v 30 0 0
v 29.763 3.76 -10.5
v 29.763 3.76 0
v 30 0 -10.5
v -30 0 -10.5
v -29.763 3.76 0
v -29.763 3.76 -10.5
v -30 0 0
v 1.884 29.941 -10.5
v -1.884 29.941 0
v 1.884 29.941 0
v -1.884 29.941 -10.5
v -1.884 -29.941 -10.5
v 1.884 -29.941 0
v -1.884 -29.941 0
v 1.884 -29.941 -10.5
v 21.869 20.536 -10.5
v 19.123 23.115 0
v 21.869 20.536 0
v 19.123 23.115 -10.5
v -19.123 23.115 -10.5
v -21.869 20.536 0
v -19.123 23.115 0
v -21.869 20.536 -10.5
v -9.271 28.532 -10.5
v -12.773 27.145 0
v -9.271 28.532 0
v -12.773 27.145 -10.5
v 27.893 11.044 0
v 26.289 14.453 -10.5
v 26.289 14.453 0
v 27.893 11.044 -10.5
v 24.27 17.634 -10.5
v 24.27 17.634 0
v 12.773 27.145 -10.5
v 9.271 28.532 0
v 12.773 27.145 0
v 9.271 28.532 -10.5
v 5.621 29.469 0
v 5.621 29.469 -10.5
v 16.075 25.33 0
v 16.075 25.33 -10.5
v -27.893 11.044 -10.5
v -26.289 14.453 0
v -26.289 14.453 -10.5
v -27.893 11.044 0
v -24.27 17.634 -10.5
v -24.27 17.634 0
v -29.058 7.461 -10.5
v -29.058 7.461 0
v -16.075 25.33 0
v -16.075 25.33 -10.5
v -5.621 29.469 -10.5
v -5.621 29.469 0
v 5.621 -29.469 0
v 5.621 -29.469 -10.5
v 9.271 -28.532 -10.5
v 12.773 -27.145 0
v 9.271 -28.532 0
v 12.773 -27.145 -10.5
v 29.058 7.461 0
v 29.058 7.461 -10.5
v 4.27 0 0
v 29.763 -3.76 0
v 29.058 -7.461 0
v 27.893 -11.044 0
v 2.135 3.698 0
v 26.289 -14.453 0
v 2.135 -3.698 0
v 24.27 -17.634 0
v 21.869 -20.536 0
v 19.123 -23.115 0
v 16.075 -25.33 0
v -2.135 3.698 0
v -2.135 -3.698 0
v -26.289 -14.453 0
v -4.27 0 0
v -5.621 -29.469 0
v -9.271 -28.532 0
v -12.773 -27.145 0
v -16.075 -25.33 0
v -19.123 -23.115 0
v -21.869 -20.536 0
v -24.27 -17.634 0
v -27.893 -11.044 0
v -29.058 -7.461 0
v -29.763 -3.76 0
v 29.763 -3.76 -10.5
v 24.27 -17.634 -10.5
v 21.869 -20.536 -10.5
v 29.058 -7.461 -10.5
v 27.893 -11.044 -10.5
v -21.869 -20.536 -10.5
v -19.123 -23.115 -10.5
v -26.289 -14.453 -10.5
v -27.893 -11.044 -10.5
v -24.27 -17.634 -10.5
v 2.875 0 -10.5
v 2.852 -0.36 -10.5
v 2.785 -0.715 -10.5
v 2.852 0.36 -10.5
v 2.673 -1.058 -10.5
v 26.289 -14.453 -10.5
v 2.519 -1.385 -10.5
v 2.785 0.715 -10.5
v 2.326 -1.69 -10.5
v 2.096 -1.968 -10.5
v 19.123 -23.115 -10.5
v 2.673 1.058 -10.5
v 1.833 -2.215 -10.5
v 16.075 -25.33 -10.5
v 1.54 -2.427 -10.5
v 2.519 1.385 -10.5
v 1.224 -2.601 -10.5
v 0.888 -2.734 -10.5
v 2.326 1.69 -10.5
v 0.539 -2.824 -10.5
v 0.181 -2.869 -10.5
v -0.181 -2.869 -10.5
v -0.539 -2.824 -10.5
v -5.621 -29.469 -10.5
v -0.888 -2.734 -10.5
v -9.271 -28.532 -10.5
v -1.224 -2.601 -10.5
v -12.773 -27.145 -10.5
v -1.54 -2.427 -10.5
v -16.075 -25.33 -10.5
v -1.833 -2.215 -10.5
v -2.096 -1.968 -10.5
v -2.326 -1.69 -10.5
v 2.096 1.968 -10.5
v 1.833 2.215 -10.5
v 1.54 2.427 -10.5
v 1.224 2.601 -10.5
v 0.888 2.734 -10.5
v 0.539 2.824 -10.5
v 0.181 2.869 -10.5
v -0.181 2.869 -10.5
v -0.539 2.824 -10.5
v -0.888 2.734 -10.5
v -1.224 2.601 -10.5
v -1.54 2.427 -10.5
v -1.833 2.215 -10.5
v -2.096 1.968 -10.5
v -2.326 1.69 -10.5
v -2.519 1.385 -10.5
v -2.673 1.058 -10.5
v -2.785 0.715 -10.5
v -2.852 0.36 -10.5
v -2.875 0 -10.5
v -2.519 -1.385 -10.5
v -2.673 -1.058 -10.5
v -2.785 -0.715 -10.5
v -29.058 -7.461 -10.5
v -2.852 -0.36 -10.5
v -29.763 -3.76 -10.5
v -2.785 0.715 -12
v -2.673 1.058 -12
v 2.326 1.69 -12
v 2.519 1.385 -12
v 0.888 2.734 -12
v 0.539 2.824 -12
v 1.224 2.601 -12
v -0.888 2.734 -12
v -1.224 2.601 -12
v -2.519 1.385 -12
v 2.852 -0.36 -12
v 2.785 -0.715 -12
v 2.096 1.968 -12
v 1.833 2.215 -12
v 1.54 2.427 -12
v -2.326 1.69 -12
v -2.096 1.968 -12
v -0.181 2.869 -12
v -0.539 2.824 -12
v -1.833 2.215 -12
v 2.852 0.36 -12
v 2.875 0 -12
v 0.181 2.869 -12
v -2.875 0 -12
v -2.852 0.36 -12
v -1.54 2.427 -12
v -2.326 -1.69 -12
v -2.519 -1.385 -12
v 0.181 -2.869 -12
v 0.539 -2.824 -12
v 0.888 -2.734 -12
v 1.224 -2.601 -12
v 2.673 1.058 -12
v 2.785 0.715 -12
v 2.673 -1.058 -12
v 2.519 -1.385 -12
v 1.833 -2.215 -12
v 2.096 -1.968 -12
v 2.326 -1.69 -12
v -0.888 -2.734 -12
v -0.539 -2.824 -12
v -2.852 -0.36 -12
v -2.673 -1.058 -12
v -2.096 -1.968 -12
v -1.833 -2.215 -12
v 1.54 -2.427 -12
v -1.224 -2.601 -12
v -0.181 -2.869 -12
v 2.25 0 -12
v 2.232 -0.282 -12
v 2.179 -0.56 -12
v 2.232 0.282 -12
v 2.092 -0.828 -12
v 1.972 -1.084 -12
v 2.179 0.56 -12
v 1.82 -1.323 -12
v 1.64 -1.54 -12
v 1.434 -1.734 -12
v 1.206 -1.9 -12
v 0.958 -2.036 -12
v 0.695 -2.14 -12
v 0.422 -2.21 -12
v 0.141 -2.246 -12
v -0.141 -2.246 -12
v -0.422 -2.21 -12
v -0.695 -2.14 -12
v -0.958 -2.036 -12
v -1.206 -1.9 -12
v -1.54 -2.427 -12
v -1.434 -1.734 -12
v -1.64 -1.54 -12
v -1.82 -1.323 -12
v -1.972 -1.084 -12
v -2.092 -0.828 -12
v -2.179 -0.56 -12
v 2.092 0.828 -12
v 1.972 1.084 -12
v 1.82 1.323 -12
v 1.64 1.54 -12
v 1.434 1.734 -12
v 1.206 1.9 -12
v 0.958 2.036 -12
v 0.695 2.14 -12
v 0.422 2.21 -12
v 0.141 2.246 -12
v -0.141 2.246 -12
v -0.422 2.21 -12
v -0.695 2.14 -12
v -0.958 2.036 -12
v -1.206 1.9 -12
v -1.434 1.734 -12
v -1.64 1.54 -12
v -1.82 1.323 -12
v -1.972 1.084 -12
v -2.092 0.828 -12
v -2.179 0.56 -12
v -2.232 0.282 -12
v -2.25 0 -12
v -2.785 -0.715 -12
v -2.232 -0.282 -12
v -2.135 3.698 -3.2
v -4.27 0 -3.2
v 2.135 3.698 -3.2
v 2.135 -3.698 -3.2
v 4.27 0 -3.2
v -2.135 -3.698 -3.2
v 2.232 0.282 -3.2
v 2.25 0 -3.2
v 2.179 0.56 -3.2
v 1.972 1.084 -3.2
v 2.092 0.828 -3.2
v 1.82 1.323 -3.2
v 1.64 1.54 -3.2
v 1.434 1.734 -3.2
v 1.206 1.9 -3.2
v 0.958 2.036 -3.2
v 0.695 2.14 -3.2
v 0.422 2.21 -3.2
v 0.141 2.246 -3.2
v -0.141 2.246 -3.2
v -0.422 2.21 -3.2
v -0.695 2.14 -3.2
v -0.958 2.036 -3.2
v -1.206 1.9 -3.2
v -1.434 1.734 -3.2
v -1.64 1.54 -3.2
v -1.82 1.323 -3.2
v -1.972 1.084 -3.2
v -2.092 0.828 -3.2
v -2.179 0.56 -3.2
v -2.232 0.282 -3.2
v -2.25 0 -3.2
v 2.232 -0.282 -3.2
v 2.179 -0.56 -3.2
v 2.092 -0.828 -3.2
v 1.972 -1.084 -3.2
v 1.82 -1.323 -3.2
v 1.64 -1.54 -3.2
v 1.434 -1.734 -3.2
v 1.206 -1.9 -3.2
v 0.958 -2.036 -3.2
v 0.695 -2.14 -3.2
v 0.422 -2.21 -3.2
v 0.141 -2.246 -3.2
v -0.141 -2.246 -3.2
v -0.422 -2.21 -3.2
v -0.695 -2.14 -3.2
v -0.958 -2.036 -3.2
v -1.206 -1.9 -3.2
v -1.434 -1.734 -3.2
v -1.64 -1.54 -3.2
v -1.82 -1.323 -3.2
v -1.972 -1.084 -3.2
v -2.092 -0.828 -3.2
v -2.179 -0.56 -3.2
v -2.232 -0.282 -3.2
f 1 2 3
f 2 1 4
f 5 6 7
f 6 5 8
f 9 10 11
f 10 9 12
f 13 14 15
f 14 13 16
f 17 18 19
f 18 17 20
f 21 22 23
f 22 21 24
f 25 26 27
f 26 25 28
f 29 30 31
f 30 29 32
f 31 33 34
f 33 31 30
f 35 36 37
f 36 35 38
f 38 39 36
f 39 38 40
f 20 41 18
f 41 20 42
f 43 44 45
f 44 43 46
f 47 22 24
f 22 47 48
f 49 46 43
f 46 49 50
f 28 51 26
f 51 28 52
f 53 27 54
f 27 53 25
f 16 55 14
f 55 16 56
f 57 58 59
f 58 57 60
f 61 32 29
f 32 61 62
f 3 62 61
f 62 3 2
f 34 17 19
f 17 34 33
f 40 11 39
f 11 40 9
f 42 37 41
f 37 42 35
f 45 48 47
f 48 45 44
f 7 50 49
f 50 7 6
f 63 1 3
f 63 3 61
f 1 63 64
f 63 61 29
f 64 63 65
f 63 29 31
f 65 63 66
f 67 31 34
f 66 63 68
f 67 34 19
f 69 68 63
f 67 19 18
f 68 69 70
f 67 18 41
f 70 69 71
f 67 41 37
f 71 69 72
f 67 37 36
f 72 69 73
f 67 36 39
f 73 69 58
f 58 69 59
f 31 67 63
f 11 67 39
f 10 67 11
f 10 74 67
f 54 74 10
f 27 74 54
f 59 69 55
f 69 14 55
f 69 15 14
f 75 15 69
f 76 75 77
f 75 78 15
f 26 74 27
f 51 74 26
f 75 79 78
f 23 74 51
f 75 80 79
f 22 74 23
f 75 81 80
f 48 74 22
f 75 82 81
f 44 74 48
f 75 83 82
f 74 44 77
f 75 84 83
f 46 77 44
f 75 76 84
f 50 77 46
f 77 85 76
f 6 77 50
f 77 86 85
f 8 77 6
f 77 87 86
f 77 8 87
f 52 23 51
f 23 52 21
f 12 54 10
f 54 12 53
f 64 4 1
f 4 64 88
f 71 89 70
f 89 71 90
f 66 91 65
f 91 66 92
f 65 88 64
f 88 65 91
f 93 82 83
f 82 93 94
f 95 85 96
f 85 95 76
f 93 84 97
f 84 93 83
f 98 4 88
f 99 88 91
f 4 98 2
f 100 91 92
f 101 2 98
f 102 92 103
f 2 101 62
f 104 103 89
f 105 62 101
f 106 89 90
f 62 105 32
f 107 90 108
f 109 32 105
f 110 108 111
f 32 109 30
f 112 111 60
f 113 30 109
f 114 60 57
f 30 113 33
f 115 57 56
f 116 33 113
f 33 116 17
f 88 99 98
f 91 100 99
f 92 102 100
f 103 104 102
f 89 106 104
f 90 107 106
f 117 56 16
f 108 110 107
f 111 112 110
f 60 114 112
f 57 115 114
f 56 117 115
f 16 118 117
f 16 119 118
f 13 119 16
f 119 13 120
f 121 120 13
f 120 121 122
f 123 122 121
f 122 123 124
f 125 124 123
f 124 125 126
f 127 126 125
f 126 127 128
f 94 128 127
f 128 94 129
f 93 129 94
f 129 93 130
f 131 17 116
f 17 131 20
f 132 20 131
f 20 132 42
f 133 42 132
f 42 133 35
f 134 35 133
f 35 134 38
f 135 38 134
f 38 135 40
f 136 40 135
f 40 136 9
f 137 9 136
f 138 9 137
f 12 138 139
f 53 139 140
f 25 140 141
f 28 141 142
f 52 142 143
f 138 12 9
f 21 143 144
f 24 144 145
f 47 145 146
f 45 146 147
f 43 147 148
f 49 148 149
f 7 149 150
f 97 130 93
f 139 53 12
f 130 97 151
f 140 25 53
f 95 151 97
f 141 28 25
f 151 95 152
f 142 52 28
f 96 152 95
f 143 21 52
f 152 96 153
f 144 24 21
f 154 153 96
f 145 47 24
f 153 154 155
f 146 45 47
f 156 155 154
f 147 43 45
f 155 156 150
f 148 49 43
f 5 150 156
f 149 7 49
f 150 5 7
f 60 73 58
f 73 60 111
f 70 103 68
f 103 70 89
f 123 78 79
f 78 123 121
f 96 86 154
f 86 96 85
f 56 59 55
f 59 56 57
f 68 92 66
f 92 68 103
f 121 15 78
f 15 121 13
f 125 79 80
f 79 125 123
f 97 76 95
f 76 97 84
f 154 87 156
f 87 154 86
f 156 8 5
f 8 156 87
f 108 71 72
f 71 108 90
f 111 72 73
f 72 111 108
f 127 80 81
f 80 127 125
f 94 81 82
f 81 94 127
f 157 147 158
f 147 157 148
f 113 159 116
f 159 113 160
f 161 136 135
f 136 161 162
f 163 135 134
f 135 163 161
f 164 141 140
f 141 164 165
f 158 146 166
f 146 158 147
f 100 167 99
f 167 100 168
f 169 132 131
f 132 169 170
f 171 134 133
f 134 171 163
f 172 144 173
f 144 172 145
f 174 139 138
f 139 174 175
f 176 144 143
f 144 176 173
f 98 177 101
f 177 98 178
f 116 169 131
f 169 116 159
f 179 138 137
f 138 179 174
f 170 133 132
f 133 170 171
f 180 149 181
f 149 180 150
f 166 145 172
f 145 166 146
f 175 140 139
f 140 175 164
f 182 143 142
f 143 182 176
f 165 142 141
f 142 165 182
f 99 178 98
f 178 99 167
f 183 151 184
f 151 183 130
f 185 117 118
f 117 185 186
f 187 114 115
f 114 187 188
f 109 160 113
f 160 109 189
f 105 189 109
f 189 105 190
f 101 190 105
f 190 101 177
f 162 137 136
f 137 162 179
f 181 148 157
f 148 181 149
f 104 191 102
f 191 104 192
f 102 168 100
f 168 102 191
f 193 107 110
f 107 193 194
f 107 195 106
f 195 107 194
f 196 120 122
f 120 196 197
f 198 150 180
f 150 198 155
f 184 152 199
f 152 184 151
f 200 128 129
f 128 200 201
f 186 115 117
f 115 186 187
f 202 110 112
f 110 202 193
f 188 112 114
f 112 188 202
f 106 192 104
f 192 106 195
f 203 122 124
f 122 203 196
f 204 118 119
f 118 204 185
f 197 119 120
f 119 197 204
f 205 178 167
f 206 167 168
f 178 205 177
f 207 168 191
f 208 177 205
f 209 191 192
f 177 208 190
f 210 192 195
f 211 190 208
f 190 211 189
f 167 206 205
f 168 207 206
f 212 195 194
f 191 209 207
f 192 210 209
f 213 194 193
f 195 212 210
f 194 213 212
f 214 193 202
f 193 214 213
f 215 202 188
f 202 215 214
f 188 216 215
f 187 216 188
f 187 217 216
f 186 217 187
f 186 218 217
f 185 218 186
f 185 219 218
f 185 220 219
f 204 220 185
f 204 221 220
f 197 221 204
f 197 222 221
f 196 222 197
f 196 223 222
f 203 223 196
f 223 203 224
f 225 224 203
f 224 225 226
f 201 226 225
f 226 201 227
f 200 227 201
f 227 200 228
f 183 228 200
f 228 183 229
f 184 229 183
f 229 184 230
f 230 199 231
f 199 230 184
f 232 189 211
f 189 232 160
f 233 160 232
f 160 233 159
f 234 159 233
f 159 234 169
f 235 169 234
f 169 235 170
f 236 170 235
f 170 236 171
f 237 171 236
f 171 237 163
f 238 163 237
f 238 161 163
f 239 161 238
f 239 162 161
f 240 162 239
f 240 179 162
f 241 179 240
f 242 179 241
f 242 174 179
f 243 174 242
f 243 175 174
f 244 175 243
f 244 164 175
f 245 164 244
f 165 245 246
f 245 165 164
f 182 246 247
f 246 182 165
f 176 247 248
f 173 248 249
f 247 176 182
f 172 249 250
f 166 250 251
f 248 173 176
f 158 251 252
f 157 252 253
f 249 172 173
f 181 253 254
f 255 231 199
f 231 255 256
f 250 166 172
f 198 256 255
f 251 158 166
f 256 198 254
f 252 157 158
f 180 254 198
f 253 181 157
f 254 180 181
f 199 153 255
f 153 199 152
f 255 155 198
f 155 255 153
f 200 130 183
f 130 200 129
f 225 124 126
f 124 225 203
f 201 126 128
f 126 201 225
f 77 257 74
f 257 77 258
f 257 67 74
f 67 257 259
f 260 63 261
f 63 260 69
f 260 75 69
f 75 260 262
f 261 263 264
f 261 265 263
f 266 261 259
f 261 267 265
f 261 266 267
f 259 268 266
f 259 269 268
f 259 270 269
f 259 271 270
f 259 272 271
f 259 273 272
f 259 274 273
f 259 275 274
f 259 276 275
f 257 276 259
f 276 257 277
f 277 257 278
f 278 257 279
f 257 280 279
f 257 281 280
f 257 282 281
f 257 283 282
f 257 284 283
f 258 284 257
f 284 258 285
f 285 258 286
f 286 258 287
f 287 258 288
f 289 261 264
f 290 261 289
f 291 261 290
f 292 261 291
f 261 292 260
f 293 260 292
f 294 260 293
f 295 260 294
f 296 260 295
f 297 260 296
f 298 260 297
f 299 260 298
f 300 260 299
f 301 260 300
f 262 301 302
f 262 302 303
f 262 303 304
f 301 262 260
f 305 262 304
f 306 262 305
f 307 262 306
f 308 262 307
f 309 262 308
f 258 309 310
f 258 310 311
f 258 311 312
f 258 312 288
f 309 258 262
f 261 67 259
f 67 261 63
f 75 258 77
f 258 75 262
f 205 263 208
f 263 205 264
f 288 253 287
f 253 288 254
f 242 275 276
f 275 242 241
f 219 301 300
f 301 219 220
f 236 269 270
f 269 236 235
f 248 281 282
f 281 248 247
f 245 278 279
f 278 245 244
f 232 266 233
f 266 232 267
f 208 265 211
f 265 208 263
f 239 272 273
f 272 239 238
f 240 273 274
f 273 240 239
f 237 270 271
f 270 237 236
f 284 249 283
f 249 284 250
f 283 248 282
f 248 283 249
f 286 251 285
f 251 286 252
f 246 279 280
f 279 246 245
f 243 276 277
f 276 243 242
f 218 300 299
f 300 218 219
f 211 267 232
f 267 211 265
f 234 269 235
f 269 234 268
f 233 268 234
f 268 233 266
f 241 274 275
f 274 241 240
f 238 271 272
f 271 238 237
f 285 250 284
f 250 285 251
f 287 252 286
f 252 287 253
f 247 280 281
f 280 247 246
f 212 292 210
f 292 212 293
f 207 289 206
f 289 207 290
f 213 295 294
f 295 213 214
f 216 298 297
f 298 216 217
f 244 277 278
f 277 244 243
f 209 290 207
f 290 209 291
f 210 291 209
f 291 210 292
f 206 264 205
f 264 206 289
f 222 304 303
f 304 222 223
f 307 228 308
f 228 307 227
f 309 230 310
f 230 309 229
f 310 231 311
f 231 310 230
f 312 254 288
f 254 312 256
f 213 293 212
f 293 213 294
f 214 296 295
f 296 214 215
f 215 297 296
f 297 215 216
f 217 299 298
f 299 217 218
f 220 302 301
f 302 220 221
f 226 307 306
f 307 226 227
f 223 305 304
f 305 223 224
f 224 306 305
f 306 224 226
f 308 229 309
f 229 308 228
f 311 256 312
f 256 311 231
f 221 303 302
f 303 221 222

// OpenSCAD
$fn = 50;


difference() {
	union() {
		translate(v = [0, 0, -10.5000000000]) {
			cylinder(h = 10.5000000000, r = 30.0000000000);
		}
		translate(v = [0, 0, -12.0000000000]) {
			cylinder(h = 12, r = 2.8750000000);
		}
	}
	union() {
		translate(v = [0, 0, 0]) {
			rotate(a = [0, 0, 0]) {
				difference() {
					union() {
						translate(v = [0, 0, -3.2000000000]) {
							linear_extrude(height = 3.2000000000) {
								polygon(points = [[4.2698000000, 0.0000000000], [2.1349000000, 3.6977552691], [-2.1349000000, 3.6977552691], [-4.2698000000, 0.0000000000], [-2.1349000000, -3.6977552691], [2.1349000000, -3.6977552691]]);
							}
						}
					}
					union();
				}
			}
		}
		#translate(v = [0, 0, -100.0000000000]) {
			cylinder(h = 200, r = 2.2500000000);
		}
	}
}
